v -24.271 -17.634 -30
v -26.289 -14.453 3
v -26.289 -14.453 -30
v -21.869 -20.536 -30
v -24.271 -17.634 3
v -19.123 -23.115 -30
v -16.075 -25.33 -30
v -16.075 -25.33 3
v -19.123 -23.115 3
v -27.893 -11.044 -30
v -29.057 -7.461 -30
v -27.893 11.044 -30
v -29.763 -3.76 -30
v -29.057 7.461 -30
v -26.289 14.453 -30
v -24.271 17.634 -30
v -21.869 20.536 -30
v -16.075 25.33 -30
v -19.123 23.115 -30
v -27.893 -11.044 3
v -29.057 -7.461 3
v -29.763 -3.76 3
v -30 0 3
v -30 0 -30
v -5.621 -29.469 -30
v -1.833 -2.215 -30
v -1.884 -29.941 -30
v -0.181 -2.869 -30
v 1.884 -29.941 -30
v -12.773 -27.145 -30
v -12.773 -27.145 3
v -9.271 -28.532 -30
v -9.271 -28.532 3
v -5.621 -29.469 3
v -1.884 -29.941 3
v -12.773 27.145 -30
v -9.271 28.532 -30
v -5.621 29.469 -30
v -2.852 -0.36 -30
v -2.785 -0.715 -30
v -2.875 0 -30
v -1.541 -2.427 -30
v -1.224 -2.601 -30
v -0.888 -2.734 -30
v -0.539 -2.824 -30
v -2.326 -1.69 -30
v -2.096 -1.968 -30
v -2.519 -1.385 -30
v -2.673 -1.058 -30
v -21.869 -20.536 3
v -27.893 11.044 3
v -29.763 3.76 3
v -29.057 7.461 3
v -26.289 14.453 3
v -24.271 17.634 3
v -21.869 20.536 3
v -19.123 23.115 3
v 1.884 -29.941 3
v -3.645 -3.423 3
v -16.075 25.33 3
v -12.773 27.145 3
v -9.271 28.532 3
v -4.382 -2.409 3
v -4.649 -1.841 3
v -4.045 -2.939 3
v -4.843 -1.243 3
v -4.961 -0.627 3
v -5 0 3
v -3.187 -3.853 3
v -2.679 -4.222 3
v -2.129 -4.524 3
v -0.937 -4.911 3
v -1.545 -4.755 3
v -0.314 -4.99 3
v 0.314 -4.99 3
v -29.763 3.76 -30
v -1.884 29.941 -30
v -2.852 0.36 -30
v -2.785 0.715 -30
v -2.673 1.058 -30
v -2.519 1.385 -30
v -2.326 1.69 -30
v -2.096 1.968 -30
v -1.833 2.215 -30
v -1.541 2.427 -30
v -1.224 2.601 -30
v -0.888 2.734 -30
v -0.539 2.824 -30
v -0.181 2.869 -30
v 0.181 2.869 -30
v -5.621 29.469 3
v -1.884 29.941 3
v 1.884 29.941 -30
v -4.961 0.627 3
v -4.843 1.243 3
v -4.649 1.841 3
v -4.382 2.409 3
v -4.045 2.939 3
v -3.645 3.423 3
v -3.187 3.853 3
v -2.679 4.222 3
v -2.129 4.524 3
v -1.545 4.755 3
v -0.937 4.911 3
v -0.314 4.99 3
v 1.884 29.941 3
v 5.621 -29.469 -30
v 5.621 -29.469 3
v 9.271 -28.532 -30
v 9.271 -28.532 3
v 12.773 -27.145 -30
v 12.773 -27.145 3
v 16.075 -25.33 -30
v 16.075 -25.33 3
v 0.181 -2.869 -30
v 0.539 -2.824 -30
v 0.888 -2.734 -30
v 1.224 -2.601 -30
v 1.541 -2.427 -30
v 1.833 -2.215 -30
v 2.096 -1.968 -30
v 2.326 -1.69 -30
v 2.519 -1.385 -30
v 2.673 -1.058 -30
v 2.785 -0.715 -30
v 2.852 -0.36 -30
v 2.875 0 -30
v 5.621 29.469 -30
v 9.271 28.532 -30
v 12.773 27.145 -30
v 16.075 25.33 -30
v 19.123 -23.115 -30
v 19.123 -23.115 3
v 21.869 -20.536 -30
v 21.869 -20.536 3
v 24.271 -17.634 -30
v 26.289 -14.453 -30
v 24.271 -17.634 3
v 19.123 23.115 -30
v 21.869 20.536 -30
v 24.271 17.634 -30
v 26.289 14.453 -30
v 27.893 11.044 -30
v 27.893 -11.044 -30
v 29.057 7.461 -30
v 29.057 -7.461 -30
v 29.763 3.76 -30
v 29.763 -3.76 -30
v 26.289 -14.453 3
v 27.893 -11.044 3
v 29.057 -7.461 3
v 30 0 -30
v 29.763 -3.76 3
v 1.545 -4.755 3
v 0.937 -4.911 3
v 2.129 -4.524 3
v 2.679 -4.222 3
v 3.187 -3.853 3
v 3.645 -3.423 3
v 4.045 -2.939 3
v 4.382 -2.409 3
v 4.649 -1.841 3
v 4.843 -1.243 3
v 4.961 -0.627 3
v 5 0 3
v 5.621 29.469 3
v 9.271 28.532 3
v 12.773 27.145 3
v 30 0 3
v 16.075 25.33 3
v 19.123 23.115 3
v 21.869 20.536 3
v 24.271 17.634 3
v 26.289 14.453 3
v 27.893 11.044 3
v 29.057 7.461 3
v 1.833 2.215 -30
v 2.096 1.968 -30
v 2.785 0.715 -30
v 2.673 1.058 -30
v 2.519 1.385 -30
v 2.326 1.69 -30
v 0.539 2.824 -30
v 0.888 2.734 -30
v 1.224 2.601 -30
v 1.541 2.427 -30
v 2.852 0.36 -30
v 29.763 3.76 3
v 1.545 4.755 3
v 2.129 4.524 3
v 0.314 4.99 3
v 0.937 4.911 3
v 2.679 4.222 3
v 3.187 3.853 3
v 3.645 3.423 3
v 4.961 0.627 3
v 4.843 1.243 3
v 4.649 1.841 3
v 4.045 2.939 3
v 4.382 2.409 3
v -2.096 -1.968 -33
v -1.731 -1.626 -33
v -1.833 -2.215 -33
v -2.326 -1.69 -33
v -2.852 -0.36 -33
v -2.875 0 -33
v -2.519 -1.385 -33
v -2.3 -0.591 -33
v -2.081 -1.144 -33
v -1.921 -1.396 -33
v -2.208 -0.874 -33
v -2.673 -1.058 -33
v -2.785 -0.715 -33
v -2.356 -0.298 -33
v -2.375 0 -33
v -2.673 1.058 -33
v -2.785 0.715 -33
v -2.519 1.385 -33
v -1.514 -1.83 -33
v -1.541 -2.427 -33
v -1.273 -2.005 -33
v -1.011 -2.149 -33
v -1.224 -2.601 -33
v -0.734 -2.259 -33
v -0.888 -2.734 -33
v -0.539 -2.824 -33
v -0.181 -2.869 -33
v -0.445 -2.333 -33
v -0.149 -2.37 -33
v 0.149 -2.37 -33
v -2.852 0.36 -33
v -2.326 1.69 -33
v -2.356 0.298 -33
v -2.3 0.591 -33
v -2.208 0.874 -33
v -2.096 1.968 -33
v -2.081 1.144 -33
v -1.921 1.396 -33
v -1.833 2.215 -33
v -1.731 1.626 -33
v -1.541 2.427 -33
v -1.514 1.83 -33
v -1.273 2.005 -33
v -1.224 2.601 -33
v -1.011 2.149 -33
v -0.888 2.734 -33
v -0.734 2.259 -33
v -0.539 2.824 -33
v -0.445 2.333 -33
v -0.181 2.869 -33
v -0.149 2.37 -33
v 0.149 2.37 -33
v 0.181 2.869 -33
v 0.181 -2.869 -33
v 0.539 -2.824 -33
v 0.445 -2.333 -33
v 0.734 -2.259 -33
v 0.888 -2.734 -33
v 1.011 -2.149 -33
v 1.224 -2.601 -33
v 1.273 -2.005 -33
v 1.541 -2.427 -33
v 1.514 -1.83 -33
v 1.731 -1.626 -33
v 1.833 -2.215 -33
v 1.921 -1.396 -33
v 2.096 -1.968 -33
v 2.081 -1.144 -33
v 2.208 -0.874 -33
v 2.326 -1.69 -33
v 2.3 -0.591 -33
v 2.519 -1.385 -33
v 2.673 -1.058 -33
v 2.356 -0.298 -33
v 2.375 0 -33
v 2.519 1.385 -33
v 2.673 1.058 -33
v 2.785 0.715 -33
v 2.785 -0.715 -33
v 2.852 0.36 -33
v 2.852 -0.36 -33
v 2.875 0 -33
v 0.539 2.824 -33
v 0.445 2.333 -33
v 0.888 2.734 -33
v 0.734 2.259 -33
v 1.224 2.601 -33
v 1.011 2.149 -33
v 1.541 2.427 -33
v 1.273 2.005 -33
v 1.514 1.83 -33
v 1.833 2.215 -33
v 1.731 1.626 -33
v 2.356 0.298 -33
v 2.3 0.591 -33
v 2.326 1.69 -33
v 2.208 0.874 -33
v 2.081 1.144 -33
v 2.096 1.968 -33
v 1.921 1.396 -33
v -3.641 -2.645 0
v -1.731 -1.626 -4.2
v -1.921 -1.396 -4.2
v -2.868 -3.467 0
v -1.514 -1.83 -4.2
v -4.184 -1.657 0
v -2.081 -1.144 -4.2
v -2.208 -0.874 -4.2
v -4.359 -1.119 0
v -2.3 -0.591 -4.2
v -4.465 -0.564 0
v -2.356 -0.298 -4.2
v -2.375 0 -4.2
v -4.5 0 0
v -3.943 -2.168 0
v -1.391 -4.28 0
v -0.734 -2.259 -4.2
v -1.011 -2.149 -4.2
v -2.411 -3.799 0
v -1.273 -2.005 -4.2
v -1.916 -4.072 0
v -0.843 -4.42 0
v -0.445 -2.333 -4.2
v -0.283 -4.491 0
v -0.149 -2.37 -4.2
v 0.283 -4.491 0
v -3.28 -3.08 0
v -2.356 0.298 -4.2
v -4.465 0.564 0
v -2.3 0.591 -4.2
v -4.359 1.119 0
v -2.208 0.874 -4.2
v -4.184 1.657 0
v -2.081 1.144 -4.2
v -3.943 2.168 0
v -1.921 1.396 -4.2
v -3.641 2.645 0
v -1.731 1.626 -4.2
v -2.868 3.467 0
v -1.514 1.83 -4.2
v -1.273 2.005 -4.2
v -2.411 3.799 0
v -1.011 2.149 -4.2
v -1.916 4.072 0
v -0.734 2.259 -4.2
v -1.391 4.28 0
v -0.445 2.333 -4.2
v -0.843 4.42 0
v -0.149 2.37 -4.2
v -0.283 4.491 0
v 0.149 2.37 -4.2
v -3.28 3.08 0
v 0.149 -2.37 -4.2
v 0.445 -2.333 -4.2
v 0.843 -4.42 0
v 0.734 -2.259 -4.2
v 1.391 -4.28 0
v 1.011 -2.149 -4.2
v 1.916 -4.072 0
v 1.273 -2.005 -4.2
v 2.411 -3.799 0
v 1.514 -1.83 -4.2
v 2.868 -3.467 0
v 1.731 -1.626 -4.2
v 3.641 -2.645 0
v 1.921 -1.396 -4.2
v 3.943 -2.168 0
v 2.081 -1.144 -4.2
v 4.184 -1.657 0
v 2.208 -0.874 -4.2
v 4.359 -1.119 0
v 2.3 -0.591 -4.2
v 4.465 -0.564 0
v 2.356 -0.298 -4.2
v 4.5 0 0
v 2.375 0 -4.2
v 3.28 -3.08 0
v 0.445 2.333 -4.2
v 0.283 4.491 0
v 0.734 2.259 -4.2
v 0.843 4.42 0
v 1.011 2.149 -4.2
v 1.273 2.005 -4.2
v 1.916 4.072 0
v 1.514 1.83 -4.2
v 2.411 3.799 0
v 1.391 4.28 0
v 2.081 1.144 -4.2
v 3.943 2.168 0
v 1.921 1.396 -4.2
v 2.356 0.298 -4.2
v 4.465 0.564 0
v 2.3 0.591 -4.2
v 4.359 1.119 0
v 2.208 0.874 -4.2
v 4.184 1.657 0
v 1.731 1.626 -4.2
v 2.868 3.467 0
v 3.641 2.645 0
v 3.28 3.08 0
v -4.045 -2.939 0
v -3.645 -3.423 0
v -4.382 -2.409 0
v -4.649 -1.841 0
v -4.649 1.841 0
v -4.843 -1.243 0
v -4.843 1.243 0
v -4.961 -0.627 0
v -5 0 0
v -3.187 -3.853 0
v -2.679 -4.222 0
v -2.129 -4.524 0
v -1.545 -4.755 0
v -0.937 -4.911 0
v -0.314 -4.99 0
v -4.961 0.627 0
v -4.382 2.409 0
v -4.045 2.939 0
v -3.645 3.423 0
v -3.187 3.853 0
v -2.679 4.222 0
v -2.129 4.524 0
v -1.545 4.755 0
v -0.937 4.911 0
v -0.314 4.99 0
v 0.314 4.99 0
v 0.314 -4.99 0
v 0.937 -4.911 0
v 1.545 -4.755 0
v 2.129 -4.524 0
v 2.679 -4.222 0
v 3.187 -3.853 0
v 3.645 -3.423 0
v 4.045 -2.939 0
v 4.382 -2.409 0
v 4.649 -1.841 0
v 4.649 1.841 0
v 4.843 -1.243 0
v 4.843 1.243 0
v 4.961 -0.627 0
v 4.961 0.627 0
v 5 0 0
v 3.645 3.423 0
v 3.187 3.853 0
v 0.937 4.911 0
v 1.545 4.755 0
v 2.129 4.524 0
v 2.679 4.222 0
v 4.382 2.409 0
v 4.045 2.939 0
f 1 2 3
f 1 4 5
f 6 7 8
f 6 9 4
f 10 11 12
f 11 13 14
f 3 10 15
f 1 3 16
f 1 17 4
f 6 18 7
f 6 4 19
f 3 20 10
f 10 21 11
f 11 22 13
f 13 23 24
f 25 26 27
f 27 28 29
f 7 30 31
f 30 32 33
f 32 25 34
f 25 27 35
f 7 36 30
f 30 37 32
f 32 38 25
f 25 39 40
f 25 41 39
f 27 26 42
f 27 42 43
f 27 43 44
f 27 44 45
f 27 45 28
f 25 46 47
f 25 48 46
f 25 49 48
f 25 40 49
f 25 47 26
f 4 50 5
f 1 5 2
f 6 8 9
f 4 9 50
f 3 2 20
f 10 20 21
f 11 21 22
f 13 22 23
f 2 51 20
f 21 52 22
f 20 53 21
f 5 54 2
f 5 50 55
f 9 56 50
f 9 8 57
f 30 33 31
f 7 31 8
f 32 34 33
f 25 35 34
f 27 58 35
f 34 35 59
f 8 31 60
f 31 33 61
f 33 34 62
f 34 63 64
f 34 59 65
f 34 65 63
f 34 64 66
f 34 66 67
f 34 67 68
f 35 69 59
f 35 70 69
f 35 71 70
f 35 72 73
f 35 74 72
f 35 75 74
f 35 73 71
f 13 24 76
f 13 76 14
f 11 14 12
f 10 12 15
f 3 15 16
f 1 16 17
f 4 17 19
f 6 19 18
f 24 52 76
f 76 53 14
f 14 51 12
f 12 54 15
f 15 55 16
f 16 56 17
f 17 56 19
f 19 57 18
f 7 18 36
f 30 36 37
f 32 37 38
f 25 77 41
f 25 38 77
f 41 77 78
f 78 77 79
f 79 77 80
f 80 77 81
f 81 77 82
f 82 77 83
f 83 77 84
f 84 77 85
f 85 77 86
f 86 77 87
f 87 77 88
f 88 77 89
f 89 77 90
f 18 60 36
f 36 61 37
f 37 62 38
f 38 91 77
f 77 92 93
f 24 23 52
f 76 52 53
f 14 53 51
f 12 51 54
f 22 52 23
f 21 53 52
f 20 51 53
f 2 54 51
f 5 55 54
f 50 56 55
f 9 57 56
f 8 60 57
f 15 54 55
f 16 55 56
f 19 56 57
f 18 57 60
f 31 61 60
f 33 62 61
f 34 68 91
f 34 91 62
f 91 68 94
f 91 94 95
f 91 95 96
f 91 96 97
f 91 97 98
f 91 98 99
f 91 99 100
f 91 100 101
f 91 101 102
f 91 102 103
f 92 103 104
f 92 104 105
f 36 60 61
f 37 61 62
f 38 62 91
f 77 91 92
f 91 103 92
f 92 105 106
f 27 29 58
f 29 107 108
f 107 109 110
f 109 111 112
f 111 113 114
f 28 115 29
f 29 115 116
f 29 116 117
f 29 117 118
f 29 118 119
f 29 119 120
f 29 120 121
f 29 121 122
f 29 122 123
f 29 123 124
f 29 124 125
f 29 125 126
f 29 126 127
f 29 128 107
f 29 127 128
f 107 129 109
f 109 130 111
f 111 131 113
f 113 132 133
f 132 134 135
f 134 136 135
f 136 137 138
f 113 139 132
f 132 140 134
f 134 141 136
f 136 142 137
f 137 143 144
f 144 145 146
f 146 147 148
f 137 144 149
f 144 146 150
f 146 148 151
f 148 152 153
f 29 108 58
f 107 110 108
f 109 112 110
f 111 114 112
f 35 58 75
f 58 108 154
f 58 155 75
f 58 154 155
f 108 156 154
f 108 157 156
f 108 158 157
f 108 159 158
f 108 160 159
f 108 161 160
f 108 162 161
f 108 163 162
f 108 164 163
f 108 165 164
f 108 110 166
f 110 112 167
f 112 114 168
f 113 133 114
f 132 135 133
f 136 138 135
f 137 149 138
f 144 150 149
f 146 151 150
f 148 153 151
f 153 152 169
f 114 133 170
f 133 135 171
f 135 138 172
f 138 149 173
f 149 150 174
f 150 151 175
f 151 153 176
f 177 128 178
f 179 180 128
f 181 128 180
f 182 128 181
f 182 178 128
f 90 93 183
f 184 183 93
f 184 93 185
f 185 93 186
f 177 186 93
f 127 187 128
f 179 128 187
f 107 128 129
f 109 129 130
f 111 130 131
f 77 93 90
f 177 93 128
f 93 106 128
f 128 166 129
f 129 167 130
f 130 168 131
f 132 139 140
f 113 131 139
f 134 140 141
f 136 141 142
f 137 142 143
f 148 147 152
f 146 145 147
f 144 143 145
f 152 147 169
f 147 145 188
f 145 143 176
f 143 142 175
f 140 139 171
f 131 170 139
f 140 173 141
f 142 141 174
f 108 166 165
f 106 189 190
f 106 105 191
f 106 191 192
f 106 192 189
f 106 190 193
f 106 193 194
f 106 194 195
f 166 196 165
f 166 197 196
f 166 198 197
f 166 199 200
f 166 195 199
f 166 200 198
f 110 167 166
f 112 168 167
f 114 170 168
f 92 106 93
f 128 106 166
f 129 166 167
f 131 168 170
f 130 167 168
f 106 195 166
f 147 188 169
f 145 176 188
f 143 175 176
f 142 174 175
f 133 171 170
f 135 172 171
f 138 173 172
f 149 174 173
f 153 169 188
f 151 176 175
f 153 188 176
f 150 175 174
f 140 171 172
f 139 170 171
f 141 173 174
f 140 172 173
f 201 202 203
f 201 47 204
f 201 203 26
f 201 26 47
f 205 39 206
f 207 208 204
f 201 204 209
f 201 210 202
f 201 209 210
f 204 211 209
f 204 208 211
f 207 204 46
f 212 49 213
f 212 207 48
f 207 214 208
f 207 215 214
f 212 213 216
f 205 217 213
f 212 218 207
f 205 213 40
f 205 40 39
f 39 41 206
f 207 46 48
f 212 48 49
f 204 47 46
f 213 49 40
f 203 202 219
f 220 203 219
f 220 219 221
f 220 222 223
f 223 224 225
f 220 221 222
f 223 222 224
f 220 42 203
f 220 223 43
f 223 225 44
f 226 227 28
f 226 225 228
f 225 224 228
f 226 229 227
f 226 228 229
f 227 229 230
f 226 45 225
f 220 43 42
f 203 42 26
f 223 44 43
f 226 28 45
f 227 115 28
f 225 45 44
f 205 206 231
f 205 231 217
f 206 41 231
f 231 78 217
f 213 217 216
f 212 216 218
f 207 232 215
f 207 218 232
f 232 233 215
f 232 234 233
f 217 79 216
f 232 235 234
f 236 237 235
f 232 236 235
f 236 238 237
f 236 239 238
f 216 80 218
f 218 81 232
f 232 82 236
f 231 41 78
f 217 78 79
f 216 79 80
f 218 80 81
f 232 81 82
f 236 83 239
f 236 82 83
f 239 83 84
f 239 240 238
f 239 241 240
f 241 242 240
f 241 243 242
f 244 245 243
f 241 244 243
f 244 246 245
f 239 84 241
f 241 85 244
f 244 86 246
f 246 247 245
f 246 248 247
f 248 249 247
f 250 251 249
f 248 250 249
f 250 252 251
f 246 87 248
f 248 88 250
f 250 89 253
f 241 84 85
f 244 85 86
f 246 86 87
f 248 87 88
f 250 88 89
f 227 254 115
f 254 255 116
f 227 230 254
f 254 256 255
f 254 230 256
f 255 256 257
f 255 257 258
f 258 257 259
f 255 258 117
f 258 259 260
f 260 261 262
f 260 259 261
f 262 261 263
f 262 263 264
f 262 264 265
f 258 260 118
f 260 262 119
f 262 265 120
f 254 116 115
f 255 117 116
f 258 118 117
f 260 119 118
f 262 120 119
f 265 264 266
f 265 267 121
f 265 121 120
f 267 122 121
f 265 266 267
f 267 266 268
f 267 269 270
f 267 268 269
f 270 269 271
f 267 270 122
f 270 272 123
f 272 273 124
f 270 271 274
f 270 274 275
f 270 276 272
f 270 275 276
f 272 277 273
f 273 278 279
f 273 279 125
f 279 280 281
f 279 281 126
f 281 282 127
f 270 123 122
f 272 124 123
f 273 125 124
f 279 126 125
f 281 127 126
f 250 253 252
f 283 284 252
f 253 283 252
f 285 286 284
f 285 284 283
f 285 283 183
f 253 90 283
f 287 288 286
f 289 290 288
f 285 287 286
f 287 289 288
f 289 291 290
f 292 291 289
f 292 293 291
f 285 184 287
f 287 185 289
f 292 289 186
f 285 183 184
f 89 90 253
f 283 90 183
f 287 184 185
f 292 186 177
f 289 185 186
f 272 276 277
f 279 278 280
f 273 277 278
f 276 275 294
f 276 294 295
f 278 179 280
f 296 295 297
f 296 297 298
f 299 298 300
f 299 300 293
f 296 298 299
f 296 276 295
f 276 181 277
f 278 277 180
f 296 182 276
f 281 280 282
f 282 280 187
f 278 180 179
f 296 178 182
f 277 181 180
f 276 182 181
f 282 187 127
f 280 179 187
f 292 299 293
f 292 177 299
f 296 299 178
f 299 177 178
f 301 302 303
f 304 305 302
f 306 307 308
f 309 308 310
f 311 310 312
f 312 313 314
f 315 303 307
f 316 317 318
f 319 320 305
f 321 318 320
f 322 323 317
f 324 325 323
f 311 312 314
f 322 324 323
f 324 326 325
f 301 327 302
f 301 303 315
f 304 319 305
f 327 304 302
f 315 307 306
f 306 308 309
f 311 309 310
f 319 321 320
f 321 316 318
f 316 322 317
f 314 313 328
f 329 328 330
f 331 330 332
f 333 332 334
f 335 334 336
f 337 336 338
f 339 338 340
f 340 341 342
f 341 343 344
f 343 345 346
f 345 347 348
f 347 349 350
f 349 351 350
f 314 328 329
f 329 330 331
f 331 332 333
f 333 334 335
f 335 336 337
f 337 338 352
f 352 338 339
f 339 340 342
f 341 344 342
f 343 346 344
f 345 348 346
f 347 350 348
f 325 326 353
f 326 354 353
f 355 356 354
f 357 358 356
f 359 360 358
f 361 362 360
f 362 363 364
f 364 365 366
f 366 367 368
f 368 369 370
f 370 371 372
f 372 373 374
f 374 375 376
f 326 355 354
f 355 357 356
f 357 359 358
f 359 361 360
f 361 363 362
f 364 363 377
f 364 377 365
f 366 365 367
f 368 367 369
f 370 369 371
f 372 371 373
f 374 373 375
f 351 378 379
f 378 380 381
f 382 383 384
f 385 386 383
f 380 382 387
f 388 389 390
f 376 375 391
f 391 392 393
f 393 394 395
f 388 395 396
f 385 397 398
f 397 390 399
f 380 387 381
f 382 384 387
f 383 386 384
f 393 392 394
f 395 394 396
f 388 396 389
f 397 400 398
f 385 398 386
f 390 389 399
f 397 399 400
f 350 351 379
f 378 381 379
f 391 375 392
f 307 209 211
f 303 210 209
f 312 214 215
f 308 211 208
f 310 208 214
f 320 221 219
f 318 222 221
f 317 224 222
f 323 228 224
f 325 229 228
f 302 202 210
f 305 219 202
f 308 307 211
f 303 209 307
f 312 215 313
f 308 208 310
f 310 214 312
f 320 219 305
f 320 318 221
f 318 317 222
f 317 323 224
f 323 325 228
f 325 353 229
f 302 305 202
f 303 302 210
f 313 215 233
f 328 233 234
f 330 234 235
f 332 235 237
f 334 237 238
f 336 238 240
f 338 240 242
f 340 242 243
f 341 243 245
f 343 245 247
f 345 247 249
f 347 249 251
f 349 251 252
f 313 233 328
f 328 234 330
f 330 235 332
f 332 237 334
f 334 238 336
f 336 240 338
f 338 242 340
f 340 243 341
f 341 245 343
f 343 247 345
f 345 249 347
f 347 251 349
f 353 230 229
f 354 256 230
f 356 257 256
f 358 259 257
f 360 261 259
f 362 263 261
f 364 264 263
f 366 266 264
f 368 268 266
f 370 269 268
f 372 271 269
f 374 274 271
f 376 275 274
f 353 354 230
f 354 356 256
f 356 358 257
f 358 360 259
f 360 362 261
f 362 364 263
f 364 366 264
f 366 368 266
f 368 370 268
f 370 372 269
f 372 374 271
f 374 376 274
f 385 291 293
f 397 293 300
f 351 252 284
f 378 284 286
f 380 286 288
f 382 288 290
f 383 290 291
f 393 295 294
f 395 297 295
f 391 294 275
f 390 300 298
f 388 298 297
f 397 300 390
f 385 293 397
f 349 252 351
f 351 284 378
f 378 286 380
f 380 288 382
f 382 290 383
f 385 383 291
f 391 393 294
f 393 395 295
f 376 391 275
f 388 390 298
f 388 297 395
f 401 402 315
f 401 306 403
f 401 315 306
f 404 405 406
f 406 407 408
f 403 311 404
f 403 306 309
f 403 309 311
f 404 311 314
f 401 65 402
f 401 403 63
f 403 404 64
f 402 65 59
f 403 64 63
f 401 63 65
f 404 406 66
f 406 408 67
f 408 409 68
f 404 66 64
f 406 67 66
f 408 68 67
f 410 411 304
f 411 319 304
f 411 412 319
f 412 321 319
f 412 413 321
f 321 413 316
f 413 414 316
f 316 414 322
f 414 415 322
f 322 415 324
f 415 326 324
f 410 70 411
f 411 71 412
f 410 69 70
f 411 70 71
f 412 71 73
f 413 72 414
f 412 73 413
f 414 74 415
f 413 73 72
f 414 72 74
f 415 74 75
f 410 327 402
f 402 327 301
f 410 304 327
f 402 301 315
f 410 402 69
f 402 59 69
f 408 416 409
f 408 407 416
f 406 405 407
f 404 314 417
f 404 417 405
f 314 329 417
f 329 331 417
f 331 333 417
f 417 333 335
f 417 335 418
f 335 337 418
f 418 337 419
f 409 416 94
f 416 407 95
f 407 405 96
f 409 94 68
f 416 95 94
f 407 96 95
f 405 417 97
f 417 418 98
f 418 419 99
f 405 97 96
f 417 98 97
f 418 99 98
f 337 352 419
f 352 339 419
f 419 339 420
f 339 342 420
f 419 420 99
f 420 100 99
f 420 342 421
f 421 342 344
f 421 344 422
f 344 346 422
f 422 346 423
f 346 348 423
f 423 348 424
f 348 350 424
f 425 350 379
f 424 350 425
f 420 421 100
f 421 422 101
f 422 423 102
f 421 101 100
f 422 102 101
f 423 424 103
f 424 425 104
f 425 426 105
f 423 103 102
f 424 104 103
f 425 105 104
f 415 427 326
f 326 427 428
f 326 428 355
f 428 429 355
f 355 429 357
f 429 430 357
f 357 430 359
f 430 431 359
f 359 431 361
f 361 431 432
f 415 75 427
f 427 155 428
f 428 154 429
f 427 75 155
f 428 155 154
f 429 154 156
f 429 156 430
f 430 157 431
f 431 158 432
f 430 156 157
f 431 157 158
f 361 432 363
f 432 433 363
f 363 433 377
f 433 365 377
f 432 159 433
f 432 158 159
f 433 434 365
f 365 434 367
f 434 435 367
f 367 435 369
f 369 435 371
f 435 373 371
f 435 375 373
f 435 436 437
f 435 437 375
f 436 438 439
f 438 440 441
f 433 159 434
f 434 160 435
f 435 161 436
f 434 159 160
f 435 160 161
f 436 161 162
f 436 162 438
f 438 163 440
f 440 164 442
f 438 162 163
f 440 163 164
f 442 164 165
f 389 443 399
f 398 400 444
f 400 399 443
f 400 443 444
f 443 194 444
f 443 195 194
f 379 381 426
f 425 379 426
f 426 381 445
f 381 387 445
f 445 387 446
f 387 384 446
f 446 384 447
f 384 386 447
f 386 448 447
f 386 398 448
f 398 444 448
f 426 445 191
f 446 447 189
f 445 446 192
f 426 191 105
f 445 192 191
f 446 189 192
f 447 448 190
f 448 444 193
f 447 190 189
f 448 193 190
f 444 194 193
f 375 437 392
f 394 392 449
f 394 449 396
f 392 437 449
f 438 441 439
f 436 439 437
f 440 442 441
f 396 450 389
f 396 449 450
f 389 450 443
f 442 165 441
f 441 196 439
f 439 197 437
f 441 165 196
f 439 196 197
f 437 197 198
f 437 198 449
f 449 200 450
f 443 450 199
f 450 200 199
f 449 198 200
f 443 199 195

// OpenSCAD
$fn = 50;


difference() {
	union() {
		translate(v = [0, 0, -30.0000000000]) {
			cylinder(h = 33, r = 30.0000000000);
		}
		#translate(v = [0, 0, -33.0000000000]) {
			cylinder(h = 33, r = 2.8750000000);
		}
	}
	union() {
		translate(v = [0, 0, 0]) {
			rotate(a = [0, 0, 0]) {
				difference() {
					union() {
						translate(v = [0, 0, -33.0000000000]) {
							cylinder(h = 33, r = 2.2500000000);
						}
						translate(v = [0, 0, -4.2000000000]) {
							cylinder(h = 4.2000000000, r1 = 2.3750000000, r2 = 4.5000000000);
						}
						translate(v = [0, 0, -33.0000000000]) {
							cylinder(h = 33, r = 2.3750000000);
						}
						translate(v = [0, 0, -33.0000000000]) {
							cylinder(h = 33, r = 2.2500000000);
						}
					}
					union();
				}
			}
		}
		#cylinder(h = 3, r = 5.0000000000);
	}
}
